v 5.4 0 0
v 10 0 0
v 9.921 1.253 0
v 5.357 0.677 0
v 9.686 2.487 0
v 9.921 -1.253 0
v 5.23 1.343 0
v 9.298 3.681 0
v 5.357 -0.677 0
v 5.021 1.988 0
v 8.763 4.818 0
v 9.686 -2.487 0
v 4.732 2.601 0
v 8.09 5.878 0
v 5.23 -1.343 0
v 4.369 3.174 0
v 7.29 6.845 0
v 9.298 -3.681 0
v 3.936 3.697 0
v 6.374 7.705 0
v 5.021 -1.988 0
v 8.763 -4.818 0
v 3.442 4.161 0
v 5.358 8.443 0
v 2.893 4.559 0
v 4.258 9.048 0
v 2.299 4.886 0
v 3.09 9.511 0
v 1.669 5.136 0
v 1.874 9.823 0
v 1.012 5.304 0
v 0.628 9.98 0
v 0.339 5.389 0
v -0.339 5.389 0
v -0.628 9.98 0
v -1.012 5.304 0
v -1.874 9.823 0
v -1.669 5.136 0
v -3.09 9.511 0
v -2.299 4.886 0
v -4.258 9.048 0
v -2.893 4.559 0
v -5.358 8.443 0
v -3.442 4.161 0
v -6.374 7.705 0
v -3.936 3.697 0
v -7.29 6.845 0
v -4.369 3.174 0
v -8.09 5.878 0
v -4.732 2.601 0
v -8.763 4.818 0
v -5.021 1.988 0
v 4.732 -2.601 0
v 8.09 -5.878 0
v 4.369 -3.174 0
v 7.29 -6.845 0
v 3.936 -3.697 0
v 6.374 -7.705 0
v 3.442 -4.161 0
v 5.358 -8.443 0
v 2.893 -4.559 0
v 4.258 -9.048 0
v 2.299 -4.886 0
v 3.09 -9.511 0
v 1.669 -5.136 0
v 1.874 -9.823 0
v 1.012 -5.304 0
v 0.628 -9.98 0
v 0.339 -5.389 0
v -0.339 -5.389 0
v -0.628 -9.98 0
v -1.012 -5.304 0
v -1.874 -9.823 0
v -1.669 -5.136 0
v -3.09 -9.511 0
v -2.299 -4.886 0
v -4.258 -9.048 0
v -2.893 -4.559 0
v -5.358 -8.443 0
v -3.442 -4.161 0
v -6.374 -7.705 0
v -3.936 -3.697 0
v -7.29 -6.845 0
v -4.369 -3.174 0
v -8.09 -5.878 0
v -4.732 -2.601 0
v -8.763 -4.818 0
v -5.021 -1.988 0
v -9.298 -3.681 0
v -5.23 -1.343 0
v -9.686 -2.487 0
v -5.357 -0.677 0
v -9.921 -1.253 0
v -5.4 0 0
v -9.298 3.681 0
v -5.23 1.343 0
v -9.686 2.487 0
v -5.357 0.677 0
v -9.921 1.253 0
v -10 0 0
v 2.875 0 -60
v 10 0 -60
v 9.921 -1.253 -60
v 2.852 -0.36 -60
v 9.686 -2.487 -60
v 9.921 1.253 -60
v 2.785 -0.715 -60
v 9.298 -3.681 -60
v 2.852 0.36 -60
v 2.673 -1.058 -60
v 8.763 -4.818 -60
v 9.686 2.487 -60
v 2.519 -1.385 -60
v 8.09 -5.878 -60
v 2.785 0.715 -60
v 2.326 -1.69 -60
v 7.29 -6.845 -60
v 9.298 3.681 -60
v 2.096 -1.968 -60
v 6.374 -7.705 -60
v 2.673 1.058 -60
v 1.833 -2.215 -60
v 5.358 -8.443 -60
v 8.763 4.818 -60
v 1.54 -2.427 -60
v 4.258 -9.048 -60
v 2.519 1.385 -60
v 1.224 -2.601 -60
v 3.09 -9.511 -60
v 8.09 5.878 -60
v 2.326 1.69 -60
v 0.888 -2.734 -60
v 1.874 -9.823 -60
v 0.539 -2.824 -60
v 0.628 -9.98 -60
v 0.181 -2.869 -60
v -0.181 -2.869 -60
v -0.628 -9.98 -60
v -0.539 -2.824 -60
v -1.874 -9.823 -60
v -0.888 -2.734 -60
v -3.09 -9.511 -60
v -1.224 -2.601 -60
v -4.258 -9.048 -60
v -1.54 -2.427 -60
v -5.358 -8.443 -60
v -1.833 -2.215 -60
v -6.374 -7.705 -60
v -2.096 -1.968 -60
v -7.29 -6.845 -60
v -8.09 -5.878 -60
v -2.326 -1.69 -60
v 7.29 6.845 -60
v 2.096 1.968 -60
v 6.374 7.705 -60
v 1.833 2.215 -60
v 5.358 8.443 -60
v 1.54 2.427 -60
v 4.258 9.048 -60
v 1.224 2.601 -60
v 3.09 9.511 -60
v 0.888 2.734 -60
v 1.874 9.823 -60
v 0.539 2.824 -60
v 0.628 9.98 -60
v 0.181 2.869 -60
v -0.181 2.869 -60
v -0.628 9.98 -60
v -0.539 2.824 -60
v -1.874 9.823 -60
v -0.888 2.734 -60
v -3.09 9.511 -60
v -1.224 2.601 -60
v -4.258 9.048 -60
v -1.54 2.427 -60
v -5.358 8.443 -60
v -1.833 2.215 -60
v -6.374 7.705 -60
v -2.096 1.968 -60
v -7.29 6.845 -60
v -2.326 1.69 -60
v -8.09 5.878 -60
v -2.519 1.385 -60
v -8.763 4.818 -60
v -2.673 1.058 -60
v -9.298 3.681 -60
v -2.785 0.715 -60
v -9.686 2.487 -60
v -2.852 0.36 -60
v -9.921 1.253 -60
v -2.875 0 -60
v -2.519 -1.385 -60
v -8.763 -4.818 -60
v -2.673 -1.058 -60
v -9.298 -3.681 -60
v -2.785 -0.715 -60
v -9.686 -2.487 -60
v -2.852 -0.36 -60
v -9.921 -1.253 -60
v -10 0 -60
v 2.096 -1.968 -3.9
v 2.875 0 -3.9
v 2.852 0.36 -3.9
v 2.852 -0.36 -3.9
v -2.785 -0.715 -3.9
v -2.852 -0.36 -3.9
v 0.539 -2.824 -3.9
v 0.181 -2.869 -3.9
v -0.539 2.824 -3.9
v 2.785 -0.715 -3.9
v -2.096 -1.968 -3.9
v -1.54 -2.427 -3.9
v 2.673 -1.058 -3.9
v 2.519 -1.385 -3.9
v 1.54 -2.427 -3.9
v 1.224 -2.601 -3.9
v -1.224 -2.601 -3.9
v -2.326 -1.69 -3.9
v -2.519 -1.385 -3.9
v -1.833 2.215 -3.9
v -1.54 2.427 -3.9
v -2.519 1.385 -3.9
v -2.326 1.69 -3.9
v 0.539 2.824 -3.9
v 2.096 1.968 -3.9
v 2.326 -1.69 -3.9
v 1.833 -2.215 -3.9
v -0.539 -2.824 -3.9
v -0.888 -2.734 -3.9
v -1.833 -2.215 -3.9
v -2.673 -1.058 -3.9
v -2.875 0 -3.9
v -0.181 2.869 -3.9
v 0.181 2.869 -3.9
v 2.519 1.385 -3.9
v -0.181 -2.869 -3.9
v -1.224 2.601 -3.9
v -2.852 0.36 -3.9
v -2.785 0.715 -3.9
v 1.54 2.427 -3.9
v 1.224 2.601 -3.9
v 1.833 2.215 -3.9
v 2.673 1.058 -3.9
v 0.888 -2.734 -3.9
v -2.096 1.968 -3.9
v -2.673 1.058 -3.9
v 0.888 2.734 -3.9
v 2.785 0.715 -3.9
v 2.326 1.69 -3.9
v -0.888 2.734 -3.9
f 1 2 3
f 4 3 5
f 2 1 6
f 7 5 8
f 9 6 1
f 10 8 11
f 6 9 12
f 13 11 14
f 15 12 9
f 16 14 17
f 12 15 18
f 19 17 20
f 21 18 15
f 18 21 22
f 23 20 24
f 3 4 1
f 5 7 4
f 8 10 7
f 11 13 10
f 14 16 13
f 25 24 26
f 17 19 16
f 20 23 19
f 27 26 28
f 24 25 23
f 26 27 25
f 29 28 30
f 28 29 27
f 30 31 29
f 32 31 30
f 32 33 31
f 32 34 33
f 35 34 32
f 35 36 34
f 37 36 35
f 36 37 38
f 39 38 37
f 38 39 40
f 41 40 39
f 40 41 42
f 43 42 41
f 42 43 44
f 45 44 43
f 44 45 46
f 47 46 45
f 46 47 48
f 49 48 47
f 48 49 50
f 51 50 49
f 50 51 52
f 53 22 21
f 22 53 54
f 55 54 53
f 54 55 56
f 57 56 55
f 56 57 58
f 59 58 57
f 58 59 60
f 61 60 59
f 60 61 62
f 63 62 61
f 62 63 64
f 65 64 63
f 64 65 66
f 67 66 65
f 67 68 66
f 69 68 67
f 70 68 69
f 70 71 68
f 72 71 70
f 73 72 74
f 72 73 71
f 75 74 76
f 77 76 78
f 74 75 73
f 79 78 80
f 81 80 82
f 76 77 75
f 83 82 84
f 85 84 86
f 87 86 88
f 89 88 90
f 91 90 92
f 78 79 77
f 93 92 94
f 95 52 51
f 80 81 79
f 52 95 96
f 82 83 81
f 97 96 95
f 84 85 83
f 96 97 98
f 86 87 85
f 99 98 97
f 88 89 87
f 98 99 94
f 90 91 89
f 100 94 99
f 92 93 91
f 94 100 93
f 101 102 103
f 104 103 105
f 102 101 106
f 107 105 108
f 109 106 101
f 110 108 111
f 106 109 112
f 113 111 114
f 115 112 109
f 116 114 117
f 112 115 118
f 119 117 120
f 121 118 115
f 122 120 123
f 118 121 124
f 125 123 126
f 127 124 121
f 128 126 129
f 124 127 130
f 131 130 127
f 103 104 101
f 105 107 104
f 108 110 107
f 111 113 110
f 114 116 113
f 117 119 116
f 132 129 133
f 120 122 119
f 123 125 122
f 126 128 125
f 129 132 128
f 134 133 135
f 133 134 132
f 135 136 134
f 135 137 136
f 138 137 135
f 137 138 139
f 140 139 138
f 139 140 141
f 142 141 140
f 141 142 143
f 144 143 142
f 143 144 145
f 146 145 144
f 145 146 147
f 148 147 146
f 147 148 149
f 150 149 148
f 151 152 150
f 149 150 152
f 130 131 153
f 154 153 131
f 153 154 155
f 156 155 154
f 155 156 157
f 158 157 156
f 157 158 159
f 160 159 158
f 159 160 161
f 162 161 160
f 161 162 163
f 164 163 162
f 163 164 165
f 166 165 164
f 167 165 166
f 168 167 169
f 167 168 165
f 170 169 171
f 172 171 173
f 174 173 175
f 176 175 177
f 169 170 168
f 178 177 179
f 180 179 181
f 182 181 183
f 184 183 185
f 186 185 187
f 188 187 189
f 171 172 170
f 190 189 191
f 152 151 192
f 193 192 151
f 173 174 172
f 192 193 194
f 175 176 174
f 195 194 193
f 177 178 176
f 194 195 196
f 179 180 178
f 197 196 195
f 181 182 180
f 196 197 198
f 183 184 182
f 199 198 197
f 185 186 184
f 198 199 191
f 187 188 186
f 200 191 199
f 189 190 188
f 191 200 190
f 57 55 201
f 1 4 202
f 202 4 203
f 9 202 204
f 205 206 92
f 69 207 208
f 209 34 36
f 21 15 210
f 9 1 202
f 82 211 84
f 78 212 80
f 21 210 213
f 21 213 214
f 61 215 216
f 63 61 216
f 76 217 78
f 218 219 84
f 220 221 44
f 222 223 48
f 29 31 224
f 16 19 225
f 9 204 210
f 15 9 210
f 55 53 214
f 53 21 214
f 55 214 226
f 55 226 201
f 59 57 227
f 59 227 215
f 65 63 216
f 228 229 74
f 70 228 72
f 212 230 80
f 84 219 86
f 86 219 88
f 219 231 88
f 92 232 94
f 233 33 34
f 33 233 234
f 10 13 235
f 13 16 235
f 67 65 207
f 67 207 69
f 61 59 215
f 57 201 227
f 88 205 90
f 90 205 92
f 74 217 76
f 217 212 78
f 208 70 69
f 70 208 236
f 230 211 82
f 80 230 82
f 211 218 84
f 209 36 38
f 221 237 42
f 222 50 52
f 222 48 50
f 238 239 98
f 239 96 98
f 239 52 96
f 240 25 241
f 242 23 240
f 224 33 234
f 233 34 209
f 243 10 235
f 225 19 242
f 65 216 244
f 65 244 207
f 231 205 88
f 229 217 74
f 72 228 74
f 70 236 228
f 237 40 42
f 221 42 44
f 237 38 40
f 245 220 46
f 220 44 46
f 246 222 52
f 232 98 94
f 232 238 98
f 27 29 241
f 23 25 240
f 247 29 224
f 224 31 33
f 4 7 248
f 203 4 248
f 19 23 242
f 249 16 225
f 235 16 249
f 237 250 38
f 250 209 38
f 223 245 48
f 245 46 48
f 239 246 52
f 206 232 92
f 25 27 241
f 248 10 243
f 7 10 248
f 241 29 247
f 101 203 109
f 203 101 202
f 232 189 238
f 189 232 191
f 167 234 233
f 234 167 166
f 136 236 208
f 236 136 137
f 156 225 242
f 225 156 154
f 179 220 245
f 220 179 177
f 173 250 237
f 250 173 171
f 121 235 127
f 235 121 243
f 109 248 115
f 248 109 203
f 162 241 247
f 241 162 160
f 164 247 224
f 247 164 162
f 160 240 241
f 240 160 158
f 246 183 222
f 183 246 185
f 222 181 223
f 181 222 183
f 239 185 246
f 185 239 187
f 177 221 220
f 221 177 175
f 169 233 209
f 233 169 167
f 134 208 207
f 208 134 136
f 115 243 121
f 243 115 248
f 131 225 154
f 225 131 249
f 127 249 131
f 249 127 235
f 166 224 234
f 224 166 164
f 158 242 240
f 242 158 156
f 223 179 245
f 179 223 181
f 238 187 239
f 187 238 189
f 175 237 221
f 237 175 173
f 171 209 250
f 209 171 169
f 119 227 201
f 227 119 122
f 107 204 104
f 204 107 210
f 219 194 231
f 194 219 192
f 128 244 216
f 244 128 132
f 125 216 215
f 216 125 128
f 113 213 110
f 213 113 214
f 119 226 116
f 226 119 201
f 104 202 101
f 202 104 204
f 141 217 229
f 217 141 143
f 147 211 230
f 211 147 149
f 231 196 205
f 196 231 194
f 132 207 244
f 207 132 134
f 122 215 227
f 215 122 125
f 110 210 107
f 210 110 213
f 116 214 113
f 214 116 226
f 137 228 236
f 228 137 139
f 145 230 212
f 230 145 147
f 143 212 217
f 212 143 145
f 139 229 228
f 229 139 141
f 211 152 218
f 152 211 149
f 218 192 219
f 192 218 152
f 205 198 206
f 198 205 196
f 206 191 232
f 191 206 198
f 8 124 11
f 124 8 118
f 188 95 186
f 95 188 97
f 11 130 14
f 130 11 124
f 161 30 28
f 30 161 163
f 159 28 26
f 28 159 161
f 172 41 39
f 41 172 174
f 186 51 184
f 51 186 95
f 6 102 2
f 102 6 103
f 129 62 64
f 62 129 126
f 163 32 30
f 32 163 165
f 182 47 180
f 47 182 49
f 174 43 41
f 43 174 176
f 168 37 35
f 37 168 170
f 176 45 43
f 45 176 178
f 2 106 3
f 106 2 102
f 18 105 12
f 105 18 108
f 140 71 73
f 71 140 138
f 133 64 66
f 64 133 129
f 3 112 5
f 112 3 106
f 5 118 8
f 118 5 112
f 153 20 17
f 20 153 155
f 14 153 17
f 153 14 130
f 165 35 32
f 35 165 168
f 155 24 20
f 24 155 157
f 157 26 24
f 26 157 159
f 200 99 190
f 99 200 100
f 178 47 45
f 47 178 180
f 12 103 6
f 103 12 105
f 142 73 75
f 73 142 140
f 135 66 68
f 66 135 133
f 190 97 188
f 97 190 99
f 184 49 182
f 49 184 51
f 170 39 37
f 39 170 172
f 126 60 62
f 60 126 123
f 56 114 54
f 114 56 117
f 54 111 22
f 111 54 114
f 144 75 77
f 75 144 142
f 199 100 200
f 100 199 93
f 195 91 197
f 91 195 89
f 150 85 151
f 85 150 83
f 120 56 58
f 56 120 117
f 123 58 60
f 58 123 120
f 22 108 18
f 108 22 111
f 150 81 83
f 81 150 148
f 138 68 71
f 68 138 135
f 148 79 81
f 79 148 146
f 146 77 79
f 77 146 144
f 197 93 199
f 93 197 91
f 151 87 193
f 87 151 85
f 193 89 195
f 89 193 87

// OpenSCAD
$fn = 50;


difference() {
	union() {
		translate(v = [0, 0, -60.0000000000]) {
			cylinder(h = 60, r = 10.0000000000);
		}
		cylinder(h = 0, r = 20.0000000000);
	}
	union() {
		translate(v = [0, 0, 0]) {
			rotate(a = [0, 0, 0]) {
				difference() {
					union() {
						#translate(v = [0, 0, -60.0000000000]) {
							cylinder(h = 60, r = 2.6000000000);
						}
						#translate(v = [0, 0, -3.9000000000]) {
							cylinder(h = 3.9000000000, r = 10.0000000000, r1 = 2.8750000000, r2 = 5.4000000000);
						}
						#translate(v = [0, 0, -60.0000000000]) {
							cylinder(h = 60, r = 2.8750000000);
						}
						#translate(v = [0, 0, -60.0000000000]) {
							cylinder(h = 60, r = 2.6000000000);
						}
					}
					union();
				}
			}
		}
	}
}
